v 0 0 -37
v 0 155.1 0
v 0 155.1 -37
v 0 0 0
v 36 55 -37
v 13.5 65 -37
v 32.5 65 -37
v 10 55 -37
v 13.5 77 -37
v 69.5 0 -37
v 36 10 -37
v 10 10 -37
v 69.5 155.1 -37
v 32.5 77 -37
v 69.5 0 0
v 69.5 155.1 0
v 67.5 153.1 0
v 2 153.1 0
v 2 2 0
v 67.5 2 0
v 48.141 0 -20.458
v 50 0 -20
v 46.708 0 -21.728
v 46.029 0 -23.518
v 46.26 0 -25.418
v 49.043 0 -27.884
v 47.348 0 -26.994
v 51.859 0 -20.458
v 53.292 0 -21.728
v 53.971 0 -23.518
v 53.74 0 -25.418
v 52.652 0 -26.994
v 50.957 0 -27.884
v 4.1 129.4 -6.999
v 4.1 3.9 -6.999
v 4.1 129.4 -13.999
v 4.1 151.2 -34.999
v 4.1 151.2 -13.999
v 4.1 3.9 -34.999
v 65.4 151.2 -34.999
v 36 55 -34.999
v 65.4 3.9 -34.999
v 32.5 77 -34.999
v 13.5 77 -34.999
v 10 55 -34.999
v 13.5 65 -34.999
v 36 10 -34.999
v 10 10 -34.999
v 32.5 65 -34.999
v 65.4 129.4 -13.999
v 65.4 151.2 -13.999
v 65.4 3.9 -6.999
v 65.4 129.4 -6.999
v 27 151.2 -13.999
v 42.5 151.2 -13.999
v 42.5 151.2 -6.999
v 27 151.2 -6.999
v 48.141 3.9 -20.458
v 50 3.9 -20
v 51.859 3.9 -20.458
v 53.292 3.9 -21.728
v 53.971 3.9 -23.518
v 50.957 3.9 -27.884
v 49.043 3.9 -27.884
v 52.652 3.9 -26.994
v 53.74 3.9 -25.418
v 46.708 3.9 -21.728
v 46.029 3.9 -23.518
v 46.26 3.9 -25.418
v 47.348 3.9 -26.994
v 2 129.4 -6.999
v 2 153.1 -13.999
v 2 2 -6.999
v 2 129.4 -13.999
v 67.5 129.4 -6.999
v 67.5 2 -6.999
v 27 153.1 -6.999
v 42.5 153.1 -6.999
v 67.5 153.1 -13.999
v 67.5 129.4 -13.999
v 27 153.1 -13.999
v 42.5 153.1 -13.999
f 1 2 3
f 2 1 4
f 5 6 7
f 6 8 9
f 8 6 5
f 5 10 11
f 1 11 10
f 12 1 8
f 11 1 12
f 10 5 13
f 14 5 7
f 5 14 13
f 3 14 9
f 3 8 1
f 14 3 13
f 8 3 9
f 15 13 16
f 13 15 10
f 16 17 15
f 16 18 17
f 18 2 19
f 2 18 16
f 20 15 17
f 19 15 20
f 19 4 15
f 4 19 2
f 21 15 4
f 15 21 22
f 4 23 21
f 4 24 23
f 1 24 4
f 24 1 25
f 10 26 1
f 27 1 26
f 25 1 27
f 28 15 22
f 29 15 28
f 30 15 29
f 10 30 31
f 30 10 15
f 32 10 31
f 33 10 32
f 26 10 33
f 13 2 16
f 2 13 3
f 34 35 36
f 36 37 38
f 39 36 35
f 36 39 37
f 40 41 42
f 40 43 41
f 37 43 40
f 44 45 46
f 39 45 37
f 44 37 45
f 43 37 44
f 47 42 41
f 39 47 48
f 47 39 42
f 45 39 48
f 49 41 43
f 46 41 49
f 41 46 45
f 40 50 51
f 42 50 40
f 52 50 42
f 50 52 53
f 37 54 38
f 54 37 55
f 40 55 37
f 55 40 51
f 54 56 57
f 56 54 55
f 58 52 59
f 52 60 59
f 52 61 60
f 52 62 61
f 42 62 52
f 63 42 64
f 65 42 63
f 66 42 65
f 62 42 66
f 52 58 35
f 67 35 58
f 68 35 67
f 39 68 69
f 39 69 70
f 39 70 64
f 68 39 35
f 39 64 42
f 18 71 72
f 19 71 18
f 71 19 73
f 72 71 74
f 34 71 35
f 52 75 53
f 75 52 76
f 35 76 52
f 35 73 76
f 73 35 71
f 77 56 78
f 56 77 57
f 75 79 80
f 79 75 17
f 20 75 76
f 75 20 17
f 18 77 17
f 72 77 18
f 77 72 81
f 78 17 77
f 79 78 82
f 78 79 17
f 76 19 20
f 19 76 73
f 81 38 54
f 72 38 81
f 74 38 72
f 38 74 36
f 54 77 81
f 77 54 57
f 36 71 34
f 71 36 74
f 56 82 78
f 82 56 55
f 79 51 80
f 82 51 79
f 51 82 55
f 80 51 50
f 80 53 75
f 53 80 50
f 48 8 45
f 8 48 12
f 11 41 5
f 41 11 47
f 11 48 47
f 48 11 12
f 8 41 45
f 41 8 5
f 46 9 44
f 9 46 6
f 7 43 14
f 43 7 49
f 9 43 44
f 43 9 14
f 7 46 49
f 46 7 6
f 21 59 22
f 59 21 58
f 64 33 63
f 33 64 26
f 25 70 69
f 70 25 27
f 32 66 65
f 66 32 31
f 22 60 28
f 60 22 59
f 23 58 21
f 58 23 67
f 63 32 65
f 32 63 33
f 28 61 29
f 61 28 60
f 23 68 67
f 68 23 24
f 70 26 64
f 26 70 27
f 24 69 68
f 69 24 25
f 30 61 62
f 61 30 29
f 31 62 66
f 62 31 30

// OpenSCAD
// Battery geometry - measured
BATT_WIDTH = 65.4 + 0.1;
BATT_LENGTH = 151.0 + 0.1;
BATT_NARROW_WIDTH = 61.2 + 0.1;
BATT_NARROW_LENGTH = 147.2 + 0.1;
BATT_NARROW_HEIGHT = 7;
BATT_HEIGHT = 93.2;

LIP_HEIGHT = 14;
LIP_DEPTH = 2;
LIP_TO_INSERT = 7.25;
CORNER_WIDTH = 20 + 5;
CORNER_LENGTH = 20.7 + 3;

// VA meter geometry
VA_WIDTH = 45;
VA_HEIGHT = 26;

// Switch geometry
SW_WIDTH = 12;
SW_HEIGHT = 19;

// Design settings
THICKNESS  =2;
AIR_GAP = 35;

// Inferred
bnwLedge = (BATT_WIDTH - BATT_NARROW_WIDTH)/2;
bnlLedge = (BATT_LENGTH - BATT_NARROW_LENGTH)/2;

scale([1,1,-1])

difference() {
    // Solid cover
    cube(size = [
        BATT_WIDTH + 2*THICKNESS,
        BATT_LENGTH + 2*THICKNESS, 
        THICKNESS + AIR_GAP
    ]);
    
    // Subtract narrow void
    translate([THICKNESS + bnwLedge,THICKNESS + bnlLedge,-0.001])
        cube(size = [
            BATT_NARROW_WIDTH,
            BATT_NARROW_LENGTH,
            AIR_GAP
        ]);

    // Subtract wide void
    translate([THICKNESS,THICKNESS,-0.001])
        cube(size = [
            BATT_WIDTH,
            BATT_LENGTH,
            BATT_NARROW_HEIGHT
        ]);

    // Subtract corners
    translate([THICKNESS,BATT_LENGTH-CORNER_LENGTH+THICKNESS,-0.001])
        cube(size = [
            CORNER_WIDTH,
            CORNER_LENGTH,
            LIP_HEIGHT
        ]);
    translate([
        BATT_WIDTH - CORNER_WIDTH  + THICKNESS,
        BATT_LENGTH-CORNER_LENGTH+THICKNESS,-0.001])
        cube(size = [
            CORNER_WIDTH,
            CORNER_LENGTH,
            LIP_HEIGHT
        ]);
        
     // Subtract component holes
     translate([10, 10, AIR_GAP-5])
        cube(size = [VA_HEIGHT, VA_WIDTH, 10]);
     translate([10 + (VA_HEIGHT-SW_HEIGHT)/2, 20 + VA_WIDTH, AIR_GAP-5])
        cube(size = [SW_HEIGHT, SW_WIDTH, 10]);
        
     // Substract hole for JST cords
     translate([50,0,LIP_HEIGHT+10])
         rotate([0,90,90])
            cylinder(r=4,h=10, center=true);
}
